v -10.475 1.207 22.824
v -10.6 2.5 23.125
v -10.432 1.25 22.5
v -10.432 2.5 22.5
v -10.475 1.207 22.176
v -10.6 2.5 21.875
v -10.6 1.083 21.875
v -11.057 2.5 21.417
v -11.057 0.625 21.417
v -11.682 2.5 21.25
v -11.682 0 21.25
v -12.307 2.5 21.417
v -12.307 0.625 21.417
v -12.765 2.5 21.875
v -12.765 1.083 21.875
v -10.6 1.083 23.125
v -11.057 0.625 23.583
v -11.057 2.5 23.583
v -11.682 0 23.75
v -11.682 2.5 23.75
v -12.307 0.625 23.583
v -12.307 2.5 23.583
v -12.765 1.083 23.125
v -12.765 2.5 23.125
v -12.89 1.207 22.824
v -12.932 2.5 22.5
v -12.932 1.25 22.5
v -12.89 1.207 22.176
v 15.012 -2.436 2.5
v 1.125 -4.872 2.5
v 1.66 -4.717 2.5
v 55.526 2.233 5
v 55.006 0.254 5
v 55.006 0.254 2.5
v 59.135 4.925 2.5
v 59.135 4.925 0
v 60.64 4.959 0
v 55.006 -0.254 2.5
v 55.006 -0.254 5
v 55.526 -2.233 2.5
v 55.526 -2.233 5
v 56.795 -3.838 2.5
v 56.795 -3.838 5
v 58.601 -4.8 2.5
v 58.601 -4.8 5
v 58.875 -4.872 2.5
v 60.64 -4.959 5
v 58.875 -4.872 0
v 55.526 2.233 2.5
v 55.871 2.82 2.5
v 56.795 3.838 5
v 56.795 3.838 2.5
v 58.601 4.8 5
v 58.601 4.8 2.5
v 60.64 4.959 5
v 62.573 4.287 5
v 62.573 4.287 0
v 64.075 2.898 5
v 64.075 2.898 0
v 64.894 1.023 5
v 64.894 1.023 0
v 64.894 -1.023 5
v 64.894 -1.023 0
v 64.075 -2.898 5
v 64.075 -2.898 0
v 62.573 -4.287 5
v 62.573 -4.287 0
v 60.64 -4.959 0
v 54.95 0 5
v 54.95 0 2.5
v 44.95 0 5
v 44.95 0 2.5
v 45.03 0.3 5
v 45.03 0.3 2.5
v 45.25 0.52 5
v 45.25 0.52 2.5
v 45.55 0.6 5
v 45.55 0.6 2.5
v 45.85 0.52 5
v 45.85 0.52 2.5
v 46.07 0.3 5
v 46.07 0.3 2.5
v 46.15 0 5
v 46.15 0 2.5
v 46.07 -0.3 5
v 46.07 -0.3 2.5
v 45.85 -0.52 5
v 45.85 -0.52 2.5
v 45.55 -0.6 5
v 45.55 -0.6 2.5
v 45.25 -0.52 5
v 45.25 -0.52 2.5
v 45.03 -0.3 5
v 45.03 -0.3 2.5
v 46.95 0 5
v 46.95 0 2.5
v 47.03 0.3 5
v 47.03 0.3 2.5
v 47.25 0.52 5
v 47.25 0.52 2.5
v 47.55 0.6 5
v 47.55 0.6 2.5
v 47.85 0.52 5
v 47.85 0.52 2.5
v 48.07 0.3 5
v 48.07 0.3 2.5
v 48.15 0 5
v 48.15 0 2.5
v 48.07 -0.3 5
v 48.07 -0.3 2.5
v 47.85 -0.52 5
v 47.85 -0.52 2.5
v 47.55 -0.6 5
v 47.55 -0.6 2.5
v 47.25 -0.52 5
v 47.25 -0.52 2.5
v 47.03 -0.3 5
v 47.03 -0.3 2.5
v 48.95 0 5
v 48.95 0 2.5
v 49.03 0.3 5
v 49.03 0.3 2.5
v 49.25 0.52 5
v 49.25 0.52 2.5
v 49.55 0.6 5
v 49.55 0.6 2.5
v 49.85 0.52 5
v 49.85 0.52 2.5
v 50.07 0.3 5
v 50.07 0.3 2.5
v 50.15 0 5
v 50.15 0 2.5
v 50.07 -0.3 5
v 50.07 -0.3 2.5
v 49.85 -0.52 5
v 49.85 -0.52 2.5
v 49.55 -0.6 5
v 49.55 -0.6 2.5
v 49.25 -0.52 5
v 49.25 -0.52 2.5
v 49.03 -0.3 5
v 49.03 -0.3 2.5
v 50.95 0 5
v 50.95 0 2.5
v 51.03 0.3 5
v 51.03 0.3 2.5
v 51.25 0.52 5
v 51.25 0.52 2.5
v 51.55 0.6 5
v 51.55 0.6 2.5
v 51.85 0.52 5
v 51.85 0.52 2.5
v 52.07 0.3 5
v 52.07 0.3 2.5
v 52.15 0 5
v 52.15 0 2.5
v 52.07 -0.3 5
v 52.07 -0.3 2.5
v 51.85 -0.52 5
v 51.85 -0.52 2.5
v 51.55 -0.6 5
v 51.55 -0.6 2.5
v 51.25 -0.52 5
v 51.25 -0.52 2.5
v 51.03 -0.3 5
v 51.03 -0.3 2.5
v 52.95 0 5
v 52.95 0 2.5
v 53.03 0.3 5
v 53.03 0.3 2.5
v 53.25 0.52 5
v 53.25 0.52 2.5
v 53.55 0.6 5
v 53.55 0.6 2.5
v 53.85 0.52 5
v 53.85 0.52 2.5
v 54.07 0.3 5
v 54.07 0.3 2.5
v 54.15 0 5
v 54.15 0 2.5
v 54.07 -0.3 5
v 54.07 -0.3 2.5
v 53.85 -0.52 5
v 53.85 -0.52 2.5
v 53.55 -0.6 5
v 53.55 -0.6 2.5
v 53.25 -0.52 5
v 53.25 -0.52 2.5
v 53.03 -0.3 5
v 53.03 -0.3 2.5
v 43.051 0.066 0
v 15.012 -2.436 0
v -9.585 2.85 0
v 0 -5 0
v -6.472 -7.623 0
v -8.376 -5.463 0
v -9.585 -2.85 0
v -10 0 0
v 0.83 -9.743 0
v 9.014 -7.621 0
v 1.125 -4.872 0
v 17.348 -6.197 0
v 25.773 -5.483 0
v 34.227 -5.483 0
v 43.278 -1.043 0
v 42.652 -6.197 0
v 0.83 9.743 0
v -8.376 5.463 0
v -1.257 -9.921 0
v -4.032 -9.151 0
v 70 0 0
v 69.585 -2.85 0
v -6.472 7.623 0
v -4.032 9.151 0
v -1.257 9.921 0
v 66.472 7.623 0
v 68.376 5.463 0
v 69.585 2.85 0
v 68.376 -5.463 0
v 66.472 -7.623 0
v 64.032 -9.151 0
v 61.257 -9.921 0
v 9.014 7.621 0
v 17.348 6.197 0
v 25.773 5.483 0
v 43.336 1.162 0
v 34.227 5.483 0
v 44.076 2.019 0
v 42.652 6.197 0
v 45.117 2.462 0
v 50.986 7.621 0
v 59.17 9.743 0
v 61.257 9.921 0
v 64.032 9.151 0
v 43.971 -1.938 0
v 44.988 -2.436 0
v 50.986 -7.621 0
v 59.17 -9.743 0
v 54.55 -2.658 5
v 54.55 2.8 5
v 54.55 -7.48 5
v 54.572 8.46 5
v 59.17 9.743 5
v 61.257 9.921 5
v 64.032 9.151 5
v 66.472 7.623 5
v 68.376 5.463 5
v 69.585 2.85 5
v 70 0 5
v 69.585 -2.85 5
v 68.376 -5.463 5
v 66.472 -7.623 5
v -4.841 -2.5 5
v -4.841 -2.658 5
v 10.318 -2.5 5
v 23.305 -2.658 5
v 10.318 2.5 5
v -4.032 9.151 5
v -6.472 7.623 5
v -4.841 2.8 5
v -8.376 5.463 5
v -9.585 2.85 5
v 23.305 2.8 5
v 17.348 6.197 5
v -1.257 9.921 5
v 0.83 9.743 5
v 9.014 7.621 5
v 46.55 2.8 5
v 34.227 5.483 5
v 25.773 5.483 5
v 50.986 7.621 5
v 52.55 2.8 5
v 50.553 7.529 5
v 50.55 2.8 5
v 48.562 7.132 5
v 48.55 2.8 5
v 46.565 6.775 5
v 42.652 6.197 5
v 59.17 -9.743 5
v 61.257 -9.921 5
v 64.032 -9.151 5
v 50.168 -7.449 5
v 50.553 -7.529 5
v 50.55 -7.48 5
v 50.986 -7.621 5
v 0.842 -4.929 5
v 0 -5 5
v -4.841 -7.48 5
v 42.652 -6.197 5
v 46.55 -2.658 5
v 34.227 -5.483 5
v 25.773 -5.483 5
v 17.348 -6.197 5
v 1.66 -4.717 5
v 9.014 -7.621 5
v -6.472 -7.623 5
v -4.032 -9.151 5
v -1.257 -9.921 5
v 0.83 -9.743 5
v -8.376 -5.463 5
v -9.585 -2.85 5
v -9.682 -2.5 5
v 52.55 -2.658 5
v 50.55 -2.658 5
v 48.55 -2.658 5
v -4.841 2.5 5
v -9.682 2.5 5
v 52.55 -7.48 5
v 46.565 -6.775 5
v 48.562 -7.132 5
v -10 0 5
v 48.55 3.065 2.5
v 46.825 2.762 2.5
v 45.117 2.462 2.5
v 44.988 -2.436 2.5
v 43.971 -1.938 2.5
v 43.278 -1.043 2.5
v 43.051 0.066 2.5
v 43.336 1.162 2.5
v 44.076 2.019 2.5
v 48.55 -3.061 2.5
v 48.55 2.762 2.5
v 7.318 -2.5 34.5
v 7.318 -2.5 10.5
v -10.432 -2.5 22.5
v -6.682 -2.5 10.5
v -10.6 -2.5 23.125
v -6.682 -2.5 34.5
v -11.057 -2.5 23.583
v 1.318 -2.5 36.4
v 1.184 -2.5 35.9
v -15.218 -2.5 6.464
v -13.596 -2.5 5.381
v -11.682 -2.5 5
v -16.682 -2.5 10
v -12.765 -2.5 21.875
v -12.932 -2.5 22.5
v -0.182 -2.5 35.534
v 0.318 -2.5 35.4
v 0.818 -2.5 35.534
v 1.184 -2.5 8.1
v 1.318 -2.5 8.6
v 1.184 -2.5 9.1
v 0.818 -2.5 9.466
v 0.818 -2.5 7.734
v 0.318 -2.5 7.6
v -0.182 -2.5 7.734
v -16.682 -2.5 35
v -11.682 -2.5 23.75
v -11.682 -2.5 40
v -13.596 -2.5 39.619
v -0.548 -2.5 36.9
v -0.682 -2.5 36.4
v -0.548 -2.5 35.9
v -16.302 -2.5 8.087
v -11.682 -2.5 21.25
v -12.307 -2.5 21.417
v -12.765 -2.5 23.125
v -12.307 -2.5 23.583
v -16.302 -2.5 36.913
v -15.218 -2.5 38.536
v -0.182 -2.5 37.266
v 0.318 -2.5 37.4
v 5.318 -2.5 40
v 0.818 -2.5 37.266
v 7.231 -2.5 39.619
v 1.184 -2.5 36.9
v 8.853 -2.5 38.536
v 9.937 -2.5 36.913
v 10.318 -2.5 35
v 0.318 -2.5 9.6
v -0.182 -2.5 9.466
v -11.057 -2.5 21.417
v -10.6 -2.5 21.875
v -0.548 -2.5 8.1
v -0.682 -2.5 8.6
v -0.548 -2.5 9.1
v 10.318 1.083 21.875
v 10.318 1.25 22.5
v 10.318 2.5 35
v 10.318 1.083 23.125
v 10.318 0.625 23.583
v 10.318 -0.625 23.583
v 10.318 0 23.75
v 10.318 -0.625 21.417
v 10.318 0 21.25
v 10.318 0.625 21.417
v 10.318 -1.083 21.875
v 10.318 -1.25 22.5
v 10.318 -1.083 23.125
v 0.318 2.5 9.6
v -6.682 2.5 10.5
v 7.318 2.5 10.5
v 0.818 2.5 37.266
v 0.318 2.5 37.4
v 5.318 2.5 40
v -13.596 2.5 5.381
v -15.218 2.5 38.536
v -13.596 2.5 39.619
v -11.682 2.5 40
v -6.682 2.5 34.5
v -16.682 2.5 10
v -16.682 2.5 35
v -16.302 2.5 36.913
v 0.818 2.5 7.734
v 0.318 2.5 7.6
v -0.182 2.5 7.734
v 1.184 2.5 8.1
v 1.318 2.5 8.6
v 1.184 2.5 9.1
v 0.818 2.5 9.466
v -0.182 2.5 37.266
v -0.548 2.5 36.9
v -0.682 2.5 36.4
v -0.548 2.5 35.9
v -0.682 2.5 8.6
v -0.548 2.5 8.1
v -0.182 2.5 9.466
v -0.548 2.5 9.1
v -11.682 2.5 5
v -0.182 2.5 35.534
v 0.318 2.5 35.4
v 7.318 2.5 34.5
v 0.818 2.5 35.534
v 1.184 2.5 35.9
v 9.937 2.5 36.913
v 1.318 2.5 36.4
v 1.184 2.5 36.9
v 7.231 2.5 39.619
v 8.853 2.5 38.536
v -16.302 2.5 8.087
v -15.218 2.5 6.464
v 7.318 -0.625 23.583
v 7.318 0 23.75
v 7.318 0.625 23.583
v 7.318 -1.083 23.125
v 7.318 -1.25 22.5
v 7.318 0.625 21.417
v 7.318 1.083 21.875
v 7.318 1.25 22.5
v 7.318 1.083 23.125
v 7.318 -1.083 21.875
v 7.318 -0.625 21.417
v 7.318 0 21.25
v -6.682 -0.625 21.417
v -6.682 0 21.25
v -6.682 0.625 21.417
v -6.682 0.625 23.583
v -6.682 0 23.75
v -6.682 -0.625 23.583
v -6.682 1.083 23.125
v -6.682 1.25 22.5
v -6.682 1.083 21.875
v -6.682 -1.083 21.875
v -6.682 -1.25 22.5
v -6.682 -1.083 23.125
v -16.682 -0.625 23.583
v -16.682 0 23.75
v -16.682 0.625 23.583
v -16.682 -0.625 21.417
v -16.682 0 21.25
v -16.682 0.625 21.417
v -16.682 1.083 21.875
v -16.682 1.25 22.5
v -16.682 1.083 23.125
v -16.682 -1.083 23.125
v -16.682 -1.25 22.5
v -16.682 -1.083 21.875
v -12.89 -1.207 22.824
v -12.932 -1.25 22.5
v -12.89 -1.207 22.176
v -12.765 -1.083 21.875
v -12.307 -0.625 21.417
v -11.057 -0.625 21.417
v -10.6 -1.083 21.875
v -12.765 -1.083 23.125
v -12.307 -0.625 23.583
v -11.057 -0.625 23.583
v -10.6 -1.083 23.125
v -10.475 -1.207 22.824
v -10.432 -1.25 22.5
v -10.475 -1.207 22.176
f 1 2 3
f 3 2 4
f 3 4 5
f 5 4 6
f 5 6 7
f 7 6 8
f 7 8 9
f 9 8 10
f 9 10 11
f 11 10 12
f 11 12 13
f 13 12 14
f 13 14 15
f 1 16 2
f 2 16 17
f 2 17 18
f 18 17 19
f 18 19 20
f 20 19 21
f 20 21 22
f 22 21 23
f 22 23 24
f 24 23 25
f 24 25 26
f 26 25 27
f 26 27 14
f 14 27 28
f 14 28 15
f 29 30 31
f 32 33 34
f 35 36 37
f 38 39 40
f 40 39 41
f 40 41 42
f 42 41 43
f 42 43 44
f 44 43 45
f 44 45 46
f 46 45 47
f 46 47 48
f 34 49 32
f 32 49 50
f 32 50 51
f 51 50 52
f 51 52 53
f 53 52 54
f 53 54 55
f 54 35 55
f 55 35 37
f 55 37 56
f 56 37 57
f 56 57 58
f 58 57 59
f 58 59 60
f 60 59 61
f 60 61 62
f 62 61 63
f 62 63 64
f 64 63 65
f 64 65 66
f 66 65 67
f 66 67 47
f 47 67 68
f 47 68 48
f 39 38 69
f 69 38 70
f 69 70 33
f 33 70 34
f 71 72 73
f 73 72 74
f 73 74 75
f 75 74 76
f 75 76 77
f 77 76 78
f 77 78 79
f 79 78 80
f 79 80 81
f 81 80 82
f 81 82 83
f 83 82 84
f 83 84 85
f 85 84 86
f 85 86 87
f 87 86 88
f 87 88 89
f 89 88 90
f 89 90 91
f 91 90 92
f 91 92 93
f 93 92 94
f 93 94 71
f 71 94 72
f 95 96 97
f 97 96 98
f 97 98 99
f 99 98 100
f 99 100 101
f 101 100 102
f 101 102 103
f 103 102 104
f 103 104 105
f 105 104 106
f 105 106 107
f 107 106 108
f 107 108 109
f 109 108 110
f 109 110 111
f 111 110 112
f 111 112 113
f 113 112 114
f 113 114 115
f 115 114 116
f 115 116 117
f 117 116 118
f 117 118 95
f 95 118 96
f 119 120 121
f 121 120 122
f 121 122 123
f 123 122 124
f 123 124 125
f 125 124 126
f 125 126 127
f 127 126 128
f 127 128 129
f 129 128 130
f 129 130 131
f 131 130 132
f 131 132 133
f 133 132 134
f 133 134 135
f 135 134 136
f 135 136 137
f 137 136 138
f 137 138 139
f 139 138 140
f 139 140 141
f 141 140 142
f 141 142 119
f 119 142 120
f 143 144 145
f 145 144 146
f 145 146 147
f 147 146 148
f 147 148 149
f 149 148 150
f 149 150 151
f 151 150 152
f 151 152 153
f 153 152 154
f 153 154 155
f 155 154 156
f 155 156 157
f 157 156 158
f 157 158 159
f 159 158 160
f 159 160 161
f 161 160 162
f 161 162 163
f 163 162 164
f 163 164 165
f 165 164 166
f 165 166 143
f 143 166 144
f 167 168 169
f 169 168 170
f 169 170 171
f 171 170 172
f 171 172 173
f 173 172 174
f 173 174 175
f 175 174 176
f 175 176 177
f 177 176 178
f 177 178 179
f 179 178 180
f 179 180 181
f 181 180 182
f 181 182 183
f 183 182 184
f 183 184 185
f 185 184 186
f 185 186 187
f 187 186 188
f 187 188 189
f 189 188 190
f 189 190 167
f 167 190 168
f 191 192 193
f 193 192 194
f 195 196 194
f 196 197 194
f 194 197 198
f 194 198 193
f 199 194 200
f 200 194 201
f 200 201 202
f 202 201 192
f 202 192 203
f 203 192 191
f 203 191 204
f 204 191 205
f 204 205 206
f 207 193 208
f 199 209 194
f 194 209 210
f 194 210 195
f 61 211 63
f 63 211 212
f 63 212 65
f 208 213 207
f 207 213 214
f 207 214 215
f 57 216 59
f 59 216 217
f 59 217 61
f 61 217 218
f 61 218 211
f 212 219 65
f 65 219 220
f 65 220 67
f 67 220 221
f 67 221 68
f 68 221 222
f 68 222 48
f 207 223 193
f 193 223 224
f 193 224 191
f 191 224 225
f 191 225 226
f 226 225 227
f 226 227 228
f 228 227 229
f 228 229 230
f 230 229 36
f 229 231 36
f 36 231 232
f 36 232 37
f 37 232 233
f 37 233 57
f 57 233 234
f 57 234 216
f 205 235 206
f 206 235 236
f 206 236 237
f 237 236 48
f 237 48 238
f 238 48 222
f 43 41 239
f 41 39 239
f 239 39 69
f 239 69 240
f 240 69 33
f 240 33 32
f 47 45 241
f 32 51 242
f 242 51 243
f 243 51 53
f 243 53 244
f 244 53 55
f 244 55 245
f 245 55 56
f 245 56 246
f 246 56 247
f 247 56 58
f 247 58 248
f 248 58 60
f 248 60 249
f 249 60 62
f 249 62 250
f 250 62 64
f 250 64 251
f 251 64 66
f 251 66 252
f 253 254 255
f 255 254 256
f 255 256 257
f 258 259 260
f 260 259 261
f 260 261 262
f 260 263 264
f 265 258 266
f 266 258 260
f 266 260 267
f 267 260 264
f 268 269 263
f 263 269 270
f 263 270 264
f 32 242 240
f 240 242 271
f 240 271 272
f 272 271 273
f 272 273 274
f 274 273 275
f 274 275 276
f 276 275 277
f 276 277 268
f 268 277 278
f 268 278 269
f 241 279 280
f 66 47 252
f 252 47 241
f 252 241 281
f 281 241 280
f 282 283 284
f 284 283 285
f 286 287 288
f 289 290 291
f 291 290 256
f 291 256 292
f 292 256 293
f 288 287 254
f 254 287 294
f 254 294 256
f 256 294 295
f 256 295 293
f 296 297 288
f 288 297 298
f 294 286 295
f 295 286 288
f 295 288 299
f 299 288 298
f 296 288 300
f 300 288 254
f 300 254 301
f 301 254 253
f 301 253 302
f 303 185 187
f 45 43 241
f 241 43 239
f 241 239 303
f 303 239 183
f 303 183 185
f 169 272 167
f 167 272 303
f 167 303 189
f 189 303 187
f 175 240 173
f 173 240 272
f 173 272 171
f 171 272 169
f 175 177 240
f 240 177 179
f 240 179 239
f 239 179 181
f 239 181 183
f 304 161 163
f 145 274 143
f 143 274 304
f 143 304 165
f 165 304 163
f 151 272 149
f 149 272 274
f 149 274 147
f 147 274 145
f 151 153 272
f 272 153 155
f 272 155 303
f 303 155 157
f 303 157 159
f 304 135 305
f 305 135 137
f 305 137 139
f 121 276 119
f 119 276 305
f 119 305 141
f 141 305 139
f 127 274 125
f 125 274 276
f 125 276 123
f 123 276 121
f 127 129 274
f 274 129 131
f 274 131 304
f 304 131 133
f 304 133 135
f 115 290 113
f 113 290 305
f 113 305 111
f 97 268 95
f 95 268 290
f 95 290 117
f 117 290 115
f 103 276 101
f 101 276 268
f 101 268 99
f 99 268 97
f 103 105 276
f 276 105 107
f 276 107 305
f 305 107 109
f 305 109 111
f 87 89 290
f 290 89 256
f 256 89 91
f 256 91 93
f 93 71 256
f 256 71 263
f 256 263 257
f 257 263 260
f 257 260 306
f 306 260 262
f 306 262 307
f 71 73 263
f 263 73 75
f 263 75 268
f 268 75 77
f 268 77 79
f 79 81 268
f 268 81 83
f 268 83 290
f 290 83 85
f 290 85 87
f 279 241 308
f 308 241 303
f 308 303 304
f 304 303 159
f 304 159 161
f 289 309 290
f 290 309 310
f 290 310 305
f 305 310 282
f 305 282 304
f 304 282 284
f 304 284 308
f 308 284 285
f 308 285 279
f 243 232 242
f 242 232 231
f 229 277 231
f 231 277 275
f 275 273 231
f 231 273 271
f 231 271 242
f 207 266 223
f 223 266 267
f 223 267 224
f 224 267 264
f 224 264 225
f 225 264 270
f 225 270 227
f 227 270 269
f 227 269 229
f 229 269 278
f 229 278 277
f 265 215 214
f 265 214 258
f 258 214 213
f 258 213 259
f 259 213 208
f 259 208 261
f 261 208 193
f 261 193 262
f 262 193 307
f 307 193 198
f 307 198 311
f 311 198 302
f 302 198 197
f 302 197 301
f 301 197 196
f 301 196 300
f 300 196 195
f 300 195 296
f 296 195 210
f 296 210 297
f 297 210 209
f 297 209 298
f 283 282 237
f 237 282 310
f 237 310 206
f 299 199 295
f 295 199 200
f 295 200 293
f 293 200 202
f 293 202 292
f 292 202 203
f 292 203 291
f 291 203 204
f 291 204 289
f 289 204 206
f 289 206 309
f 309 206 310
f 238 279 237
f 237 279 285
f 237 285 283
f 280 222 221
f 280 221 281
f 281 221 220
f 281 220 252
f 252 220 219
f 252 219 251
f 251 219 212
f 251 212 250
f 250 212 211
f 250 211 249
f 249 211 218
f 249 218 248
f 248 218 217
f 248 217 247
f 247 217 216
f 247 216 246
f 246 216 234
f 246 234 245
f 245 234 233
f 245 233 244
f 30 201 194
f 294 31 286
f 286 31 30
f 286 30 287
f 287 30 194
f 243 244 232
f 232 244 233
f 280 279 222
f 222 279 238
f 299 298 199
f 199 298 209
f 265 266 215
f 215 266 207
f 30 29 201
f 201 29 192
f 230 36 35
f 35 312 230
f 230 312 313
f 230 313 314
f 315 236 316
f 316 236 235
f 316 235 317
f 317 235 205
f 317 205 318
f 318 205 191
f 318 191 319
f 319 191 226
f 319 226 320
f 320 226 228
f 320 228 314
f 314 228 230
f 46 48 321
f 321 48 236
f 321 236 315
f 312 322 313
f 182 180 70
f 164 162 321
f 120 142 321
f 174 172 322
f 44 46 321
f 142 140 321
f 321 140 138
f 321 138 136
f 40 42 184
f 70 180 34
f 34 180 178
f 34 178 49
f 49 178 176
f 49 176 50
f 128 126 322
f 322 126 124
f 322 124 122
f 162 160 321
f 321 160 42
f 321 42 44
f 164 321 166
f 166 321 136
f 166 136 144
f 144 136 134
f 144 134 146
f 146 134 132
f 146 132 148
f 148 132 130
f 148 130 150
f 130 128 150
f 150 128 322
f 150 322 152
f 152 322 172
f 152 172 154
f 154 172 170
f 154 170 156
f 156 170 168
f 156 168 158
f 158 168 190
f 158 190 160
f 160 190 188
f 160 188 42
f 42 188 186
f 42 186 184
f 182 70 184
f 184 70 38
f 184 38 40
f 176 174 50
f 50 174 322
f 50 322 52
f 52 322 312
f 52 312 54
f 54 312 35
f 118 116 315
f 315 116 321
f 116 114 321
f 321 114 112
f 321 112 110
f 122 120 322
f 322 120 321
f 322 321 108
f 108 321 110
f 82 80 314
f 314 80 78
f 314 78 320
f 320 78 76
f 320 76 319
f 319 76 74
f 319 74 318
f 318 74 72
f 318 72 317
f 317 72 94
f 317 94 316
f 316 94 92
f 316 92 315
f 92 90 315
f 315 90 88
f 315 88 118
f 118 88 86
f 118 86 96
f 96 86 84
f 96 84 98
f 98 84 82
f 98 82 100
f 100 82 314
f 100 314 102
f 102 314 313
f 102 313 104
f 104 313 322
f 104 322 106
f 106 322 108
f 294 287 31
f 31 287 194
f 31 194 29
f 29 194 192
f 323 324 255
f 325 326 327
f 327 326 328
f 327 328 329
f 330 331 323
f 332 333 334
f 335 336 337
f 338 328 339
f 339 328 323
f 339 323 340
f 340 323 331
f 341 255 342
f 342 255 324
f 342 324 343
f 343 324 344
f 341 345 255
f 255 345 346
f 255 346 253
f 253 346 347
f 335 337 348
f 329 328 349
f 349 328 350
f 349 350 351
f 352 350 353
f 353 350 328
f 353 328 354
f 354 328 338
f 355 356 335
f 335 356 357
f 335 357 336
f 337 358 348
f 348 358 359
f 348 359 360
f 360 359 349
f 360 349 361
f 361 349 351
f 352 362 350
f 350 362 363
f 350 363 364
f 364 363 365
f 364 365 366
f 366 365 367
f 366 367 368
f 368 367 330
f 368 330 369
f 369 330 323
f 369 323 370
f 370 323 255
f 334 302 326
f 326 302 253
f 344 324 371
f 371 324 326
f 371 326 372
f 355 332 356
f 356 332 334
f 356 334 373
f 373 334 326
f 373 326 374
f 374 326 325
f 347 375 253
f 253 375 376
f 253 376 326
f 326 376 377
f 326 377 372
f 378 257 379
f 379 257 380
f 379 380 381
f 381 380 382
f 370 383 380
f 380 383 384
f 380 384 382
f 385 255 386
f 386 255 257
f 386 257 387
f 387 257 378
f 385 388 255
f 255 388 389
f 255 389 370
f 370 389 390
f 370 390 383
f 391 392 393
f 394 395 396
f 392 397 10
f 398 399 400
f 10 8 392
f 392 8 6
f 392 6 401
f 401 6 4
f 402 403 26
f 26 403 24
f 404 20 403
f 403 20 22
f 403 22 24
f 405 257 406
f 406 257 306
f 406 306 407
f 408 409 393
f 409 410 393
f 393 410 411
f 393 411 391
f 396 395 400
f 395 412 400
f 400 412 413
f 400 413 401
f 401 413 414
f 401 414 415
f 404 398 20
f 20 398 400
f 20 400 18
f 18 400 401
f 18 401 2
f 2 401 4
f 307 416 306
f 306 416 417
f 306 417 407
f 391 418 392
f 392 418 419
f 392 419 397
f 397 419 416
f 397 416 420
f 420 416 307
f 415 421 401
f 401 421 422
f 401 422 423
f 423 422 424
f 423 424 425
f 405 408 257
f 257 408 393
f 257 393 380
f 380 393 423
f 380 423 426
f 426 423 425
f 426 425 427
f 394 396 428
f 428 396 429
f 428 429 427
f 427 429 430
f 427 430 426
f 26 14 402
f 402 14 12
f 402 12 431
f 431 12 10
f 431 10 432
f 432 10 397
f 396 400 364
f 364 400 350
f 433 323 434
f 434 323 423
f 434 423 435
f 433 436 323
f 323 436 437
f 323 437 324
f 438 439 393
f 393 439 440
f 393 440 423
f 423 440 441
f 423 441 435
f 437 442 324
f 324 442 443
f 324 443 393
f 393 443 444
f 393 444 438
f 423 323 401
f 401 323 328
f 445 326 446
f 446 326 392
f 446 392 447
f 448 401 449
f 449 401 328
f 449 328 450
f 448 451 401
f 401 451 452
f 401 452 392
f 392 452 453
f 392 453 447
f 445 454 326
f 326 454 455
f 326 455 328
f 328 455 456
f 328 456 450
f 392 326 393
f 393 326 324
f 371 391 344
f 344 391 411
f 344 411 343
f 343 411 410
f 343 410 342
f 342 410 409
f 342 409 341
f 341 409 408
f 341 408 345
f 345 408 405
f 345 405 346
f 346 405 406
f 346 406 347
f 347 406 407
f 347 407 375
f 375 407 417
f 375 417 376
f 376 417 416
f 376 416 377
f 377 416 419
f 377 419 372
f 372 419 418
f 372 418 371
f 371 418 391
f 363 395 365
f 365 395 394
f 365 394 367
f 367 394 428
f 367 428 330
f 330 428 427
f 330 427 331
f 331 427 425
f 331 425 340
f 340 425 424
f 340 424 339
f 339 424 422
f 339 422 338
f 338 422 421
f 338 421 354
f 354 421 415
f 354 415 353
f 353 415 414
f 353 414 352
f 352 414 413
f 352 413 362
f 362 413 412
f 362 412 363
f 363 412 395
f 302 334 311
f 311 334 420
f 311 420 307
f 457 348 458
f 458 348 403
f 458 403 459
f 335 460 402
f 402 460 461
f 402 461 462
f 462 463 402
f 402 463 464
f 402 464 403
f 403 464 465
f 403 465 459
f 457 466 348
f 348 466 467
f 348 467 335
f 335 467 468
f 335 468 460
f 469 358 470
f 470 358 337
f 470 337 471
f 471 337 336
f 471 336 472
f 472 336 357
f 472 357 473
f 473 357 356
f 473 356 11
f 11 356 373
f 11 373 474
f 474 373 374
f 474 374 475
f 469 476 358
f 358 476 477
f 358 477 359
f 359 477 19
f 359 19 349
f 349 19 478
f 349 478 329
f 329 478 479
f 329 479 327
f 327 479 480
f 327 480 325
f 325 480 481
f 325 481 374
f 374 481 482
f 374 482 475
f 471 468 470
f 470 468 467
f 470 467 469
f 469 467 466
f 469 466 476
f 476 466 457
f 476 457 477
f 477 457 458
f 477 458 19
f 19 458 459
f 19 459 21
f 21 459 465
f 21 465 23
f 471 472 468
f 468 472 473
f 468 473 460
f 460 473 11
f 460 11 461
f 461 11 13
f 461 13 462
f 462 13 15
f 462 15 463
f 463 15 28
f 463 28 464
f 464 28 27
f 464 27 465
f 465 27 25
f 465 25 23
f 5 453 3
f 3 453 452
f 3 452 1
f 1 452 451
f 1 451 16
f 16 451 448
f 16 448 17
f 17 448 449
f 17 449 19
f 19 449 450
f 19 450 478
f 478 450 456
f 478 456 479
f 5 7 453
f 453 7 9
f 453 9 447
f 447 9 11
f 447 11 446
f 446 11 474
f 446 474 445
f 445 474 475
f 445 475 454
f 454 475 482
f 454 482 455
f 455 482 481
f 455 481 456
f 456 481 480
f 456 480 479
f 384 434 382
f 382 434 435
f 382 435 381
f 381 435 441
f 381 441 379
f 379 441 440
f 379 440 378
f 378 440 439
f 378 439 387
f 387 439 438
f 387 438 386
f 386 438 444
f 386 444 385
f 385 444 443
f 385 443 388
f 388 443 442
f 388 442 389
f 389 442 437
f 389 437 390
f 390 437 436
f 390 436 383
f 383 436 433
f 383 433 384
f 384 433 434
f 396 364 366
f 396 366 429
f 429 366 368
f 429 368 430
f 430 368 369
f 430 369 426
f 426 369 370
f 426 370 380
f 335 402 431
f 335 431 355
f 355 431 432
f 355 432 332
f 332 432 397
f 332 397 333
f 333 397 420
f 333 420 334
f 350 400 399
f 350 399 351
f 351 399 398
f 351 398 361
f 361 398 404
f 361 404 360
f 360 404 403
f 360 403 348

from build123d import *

# Parameters (mm, degrees)
SKETCH1_R           = 5
BOSS_EXTRUDE1_DEPTH = 5
FILLET1_R           = 5
SKETCH2_R           = 0.6
CUT_EXTRUDE1_DEPTH  = 5
SKETCH3_R           = 0.6
CUT_EXTRUDE2_DEPTH  = 2.5
BOSS_EXTRUDE7_REACH = 72.882
BOSS_EXTRUDE8_DEPTH = 35
SKETCH13_R          = 1
SKETCH13_W          = 14
SKETCH13_H          = 24
CUT_EXTRUDE3_DEPTH  = 82.57977968
SKETCH14_W          = 10
SKETCH14_H          = 35
BOSS_EXTRUDE9_DEPTH = 5
SKETCH15_R          = 1.25
CUT_EXTRUDE4_DEPTH  = 5
SKETCH16_R          = 1.25
CUT_EXTRUDE5_DEPTH  = 96.984672029
FILLET2_R           = 5


with BuildPart() as part:
    # Sketch1 → Boss-Extrude1 (new body)
    with BuildSketch(Plane.XY):
        with BuildLine():
            ThreePointArc((0, 10), (-10, 0), (0, -10))
            ThreePointArc((0, -10), (30, -5.393920142), (60, -10))
            ThreePointArc((60, -10), (70, 0), (60, 10))
            ThreePointArc((60, 10), (30, 5.393920142), (0, 10))
        make_face()
        Circle(SKETCH1_R, mode=Mode.SUBTRACT)
        with Locations((60, 0)):
            Circle(SKETCH1_R, mode=Mode.SUBTRACT)
    extrude(amount=BOSS_EXTRUDE1_DEPTH)

    # Fillet1
    fillet1_edges = [part.edges().sort_by_distance(p)[0] for p in [
        (60, 10, 2.5),
        (60, -10, 2.5),
        (0, -10, 2.5),
        (0, 10, 2.5),
    ]]
    fillet(fillet1_edges, radius=FILLET1_R)

    # Sketch2 → Cut-Extrude1 (cut)
    with BuildSketch(Plane(origin=(0, 0, 0), x_dir=(-1, 0, 0), z_dir=(0, 0, -1))):
        with Locations((-4.45, 0)):
            Circle(SKETCH2_R)
        with Locations((-6.45, 0)):
            Circle(SKETCH2_R)
        with Locations((-8.45, 0)):
            Circle(SKETCH2_R)
        with Locations((-10.45, 0)):
            Circle(SKETCH2_R)
        with Locations((-12.45, 0)):
            Circle(SKETCH2_R)
        with Locations((-14.45, 0)):
            Circle(SKETCH2_R)
    cut_extrude1 = extrude(amount=-CUT_EXTRUDE1_DEPTH, mode=Mode.SUBTRACT)

    # Sketch3 → Cut-Extrude2 (cut)
    with BuildSketch(Plane(origin=(0, 0, 0), x_dir=(-1, 0, 0), z_dir=(0, 0, -1))):
        with BuildLine():
            Line((-15.012283737, -2.435946838), (-1.124567474, -4.871893677))
            ThreePointArc((-1.124567474, -4.871893677), (-3.832599709, -3.211102532), (-4.993539326, -0.254096441))
            ThreePointArc((-4.993539326, -0.254096441), (-5.05, 0), (-4.993539326, 0.254096441))
            ThreePointArc((-4.993539326, 0.254096441), (-3.746221254, 3.311468906), (-0.865051903, 4.924600005))
            Line((-0.865051903, 4.924600005), (-14.882525952, 2.462300002))
            ThreePointArc((-14.882525952, 2.462300002), (-16.949123268, 0.066203422), (-15.012283737, -2.435946838))
        make_face()
        with Locations((-12.45, 0)):
            Circle(SKETCH3_R, mode=Mode.SUBTRACT)
        with Locations((-6.45, 0)):
            Circle(SKETCH3_R, mode=Mode.SUBTRACT)
        with Locations((-8.45, 0)):
            Circle(SKETCH3_R, mode=Mode.SUBTRACT)
        with Locations((-10.45, 0)):
            Circle(SKETCH3_R, mode=Mode.SUBTRACT)
        with Locations((-14.45, 0)):
            Circle(SKETCH3_R, mode=Mode.SUBTRACT)
    cut_extrude2 = extrude(amount=-CUT_EXTRUDE2_DEPTH, mode=Mode.SUBTRACT)

    # Mirror2: Cut-Extrude1, Cut-Extrude2 across plane
    add(cut_extrude1.mirror(Plane(origin=(30, 0, 0), x_dir=(0, 0, 1), z_dir=(1, 0, 0))), mode=Mode.SUBTRACT)
    add(cut_extrude2.mirror(Plane(origin=(30, 0, 0), x_dir=(0, 0, 1), z_dir=(1, 0, 0))), mode=Mode.SUBTRACT)

    # Boss-Extrude7: up to this face of the body (flat: up to its plane)
    boss_extrude7_end = Plane(part.part.faces().sort_by_distance((30, 0, 5))[0])
    # Sketch11 → Boss-Extrude7 (add, up to the picked face)
    with BuildSketch(Plane(origin=(0, 0, 0), x_dir=(-1, 0, 0), z_dir=(0, 0, -1)), mode=Mode.PRIVATE) as boss_extrude7_sk1:
        with BuildLine():
            ThreePointArc((-14.882525952, 2.462300002), (-16.949123268, 0.066203422), (-15.012283737, -2.435946838))
            Line((-15.012283737, -2.435946838), (0, -5))
            ThreePointArc((0, -5), (4.981114334, 0.434165854), (-0.865051903, 4.924600005))
            Line((-0.865051903, 4.924600005), (-14.882525952, 2.462300002))
        make_face()
    boss_extrude7_tool1 = split(extrude(boss_extrude7_sk1.sketch, amount=-BOSS_EXTRUDE7_REACH, mode=Mode.PRIVATE), bisect_by=boss_extrude7_end, keep=Keep.BOTH, mode=Mode.PRIVATE)
    add(boss_extrude7_tool1.solids().sort_by(Axis((4.874327, 0.014975, 0), (0, 0, 1)))[0])

    # Sketch12 → Boss-Extrude8 (add)
    with BuildSketch(Plane.XY.offset(5)):
        with BuildLine():
            ThreePointArc((-9.682458366, 2.5), (-10, 0), (-9.682458366, -2.5))
            Line((-9.682458366, -2.5), (10.317541634, -2.5))
            Line((10.317541634, -2.5), (10.317541634, 2.5))
            Line((10.317541634, 2.5), (-9.682458366, 2.5))
        make_face()
    extrude(amount=BOSS_EXTRUDE8_DEPTH)

    # Sketch13 → Cut-Extrude3 (cut, through all)
    with BuildSketch(Plane(origin=(0, 2.5, 0), x_dir=(1, 0, 0), z_dir=(0, 1, 0))):
        with Locations(Location((0.317541634, -8.6, 0), (0, 0, 270))):
            Circle(SKETCH13_R)
        with Locations(Location((0.317541634, -36.4, 0), (0, 0, 270))):
            Circle(SKETCH13_R)
        with Locations((0.317541634, -22.5)):
            Rectangle(SKETCH13_W, SKETCH13_H)
    extrude(amount=-CUT_EXTRUDE3_DEPTH, mode=Mode.SUBTRACT)

    # Sketch14 → Boss-Extrude9 (add)
    with BuildSketch(Plane(origin=(0, 2.5, 0), x_dir=(1, 0, 0), z_dir=(0, 1, 0))):
        with Locations((-11.682458366, -22.5)):
            Rectangle(SKETCH14_W, SKETCH14_H)
    extrude(amount=-BOSS_EXTRUDE9_DEPTH)

    # Sketch15 → Cut-Extrude4 (cut)
    with BuildSketch(Plane(origin=(0, 2.5, 0), x_dir=(1, 0, 0), z_dir=(0, 1, 0))):
        with Locations(Location((-11.682458366, -22.5, 0), (0, 0, 270))):
            Circle(SKETCH15_R)
    extrude(amount=-CUT_EXTRUDE4_DEPTH, mode=Mode.SUBTRACT)

    # Sketch16 → Cut-Extrude5 (cut, through all)
    with BuildSketch(Plane.ZY.offset(16.682458366)):
        with Locations((22.5, 0)):
            Circle(SKETCH16_R)
    extrude(amount=-CUT_EXTRUDE5_DEPTH, mode=Mode.SUBTRACT)

    # Fillet2
    fillet2_edges = [part.edges().sort_by_distance(p)[0] for p in [
        (10.317541634, 0, 40),
        (-16.682458366, 0, 5),
        (-16.682458366, 0, 40),
    ]]
    fillet(fillet2_edges, radius=FILLET2_R)


solid = part.part
